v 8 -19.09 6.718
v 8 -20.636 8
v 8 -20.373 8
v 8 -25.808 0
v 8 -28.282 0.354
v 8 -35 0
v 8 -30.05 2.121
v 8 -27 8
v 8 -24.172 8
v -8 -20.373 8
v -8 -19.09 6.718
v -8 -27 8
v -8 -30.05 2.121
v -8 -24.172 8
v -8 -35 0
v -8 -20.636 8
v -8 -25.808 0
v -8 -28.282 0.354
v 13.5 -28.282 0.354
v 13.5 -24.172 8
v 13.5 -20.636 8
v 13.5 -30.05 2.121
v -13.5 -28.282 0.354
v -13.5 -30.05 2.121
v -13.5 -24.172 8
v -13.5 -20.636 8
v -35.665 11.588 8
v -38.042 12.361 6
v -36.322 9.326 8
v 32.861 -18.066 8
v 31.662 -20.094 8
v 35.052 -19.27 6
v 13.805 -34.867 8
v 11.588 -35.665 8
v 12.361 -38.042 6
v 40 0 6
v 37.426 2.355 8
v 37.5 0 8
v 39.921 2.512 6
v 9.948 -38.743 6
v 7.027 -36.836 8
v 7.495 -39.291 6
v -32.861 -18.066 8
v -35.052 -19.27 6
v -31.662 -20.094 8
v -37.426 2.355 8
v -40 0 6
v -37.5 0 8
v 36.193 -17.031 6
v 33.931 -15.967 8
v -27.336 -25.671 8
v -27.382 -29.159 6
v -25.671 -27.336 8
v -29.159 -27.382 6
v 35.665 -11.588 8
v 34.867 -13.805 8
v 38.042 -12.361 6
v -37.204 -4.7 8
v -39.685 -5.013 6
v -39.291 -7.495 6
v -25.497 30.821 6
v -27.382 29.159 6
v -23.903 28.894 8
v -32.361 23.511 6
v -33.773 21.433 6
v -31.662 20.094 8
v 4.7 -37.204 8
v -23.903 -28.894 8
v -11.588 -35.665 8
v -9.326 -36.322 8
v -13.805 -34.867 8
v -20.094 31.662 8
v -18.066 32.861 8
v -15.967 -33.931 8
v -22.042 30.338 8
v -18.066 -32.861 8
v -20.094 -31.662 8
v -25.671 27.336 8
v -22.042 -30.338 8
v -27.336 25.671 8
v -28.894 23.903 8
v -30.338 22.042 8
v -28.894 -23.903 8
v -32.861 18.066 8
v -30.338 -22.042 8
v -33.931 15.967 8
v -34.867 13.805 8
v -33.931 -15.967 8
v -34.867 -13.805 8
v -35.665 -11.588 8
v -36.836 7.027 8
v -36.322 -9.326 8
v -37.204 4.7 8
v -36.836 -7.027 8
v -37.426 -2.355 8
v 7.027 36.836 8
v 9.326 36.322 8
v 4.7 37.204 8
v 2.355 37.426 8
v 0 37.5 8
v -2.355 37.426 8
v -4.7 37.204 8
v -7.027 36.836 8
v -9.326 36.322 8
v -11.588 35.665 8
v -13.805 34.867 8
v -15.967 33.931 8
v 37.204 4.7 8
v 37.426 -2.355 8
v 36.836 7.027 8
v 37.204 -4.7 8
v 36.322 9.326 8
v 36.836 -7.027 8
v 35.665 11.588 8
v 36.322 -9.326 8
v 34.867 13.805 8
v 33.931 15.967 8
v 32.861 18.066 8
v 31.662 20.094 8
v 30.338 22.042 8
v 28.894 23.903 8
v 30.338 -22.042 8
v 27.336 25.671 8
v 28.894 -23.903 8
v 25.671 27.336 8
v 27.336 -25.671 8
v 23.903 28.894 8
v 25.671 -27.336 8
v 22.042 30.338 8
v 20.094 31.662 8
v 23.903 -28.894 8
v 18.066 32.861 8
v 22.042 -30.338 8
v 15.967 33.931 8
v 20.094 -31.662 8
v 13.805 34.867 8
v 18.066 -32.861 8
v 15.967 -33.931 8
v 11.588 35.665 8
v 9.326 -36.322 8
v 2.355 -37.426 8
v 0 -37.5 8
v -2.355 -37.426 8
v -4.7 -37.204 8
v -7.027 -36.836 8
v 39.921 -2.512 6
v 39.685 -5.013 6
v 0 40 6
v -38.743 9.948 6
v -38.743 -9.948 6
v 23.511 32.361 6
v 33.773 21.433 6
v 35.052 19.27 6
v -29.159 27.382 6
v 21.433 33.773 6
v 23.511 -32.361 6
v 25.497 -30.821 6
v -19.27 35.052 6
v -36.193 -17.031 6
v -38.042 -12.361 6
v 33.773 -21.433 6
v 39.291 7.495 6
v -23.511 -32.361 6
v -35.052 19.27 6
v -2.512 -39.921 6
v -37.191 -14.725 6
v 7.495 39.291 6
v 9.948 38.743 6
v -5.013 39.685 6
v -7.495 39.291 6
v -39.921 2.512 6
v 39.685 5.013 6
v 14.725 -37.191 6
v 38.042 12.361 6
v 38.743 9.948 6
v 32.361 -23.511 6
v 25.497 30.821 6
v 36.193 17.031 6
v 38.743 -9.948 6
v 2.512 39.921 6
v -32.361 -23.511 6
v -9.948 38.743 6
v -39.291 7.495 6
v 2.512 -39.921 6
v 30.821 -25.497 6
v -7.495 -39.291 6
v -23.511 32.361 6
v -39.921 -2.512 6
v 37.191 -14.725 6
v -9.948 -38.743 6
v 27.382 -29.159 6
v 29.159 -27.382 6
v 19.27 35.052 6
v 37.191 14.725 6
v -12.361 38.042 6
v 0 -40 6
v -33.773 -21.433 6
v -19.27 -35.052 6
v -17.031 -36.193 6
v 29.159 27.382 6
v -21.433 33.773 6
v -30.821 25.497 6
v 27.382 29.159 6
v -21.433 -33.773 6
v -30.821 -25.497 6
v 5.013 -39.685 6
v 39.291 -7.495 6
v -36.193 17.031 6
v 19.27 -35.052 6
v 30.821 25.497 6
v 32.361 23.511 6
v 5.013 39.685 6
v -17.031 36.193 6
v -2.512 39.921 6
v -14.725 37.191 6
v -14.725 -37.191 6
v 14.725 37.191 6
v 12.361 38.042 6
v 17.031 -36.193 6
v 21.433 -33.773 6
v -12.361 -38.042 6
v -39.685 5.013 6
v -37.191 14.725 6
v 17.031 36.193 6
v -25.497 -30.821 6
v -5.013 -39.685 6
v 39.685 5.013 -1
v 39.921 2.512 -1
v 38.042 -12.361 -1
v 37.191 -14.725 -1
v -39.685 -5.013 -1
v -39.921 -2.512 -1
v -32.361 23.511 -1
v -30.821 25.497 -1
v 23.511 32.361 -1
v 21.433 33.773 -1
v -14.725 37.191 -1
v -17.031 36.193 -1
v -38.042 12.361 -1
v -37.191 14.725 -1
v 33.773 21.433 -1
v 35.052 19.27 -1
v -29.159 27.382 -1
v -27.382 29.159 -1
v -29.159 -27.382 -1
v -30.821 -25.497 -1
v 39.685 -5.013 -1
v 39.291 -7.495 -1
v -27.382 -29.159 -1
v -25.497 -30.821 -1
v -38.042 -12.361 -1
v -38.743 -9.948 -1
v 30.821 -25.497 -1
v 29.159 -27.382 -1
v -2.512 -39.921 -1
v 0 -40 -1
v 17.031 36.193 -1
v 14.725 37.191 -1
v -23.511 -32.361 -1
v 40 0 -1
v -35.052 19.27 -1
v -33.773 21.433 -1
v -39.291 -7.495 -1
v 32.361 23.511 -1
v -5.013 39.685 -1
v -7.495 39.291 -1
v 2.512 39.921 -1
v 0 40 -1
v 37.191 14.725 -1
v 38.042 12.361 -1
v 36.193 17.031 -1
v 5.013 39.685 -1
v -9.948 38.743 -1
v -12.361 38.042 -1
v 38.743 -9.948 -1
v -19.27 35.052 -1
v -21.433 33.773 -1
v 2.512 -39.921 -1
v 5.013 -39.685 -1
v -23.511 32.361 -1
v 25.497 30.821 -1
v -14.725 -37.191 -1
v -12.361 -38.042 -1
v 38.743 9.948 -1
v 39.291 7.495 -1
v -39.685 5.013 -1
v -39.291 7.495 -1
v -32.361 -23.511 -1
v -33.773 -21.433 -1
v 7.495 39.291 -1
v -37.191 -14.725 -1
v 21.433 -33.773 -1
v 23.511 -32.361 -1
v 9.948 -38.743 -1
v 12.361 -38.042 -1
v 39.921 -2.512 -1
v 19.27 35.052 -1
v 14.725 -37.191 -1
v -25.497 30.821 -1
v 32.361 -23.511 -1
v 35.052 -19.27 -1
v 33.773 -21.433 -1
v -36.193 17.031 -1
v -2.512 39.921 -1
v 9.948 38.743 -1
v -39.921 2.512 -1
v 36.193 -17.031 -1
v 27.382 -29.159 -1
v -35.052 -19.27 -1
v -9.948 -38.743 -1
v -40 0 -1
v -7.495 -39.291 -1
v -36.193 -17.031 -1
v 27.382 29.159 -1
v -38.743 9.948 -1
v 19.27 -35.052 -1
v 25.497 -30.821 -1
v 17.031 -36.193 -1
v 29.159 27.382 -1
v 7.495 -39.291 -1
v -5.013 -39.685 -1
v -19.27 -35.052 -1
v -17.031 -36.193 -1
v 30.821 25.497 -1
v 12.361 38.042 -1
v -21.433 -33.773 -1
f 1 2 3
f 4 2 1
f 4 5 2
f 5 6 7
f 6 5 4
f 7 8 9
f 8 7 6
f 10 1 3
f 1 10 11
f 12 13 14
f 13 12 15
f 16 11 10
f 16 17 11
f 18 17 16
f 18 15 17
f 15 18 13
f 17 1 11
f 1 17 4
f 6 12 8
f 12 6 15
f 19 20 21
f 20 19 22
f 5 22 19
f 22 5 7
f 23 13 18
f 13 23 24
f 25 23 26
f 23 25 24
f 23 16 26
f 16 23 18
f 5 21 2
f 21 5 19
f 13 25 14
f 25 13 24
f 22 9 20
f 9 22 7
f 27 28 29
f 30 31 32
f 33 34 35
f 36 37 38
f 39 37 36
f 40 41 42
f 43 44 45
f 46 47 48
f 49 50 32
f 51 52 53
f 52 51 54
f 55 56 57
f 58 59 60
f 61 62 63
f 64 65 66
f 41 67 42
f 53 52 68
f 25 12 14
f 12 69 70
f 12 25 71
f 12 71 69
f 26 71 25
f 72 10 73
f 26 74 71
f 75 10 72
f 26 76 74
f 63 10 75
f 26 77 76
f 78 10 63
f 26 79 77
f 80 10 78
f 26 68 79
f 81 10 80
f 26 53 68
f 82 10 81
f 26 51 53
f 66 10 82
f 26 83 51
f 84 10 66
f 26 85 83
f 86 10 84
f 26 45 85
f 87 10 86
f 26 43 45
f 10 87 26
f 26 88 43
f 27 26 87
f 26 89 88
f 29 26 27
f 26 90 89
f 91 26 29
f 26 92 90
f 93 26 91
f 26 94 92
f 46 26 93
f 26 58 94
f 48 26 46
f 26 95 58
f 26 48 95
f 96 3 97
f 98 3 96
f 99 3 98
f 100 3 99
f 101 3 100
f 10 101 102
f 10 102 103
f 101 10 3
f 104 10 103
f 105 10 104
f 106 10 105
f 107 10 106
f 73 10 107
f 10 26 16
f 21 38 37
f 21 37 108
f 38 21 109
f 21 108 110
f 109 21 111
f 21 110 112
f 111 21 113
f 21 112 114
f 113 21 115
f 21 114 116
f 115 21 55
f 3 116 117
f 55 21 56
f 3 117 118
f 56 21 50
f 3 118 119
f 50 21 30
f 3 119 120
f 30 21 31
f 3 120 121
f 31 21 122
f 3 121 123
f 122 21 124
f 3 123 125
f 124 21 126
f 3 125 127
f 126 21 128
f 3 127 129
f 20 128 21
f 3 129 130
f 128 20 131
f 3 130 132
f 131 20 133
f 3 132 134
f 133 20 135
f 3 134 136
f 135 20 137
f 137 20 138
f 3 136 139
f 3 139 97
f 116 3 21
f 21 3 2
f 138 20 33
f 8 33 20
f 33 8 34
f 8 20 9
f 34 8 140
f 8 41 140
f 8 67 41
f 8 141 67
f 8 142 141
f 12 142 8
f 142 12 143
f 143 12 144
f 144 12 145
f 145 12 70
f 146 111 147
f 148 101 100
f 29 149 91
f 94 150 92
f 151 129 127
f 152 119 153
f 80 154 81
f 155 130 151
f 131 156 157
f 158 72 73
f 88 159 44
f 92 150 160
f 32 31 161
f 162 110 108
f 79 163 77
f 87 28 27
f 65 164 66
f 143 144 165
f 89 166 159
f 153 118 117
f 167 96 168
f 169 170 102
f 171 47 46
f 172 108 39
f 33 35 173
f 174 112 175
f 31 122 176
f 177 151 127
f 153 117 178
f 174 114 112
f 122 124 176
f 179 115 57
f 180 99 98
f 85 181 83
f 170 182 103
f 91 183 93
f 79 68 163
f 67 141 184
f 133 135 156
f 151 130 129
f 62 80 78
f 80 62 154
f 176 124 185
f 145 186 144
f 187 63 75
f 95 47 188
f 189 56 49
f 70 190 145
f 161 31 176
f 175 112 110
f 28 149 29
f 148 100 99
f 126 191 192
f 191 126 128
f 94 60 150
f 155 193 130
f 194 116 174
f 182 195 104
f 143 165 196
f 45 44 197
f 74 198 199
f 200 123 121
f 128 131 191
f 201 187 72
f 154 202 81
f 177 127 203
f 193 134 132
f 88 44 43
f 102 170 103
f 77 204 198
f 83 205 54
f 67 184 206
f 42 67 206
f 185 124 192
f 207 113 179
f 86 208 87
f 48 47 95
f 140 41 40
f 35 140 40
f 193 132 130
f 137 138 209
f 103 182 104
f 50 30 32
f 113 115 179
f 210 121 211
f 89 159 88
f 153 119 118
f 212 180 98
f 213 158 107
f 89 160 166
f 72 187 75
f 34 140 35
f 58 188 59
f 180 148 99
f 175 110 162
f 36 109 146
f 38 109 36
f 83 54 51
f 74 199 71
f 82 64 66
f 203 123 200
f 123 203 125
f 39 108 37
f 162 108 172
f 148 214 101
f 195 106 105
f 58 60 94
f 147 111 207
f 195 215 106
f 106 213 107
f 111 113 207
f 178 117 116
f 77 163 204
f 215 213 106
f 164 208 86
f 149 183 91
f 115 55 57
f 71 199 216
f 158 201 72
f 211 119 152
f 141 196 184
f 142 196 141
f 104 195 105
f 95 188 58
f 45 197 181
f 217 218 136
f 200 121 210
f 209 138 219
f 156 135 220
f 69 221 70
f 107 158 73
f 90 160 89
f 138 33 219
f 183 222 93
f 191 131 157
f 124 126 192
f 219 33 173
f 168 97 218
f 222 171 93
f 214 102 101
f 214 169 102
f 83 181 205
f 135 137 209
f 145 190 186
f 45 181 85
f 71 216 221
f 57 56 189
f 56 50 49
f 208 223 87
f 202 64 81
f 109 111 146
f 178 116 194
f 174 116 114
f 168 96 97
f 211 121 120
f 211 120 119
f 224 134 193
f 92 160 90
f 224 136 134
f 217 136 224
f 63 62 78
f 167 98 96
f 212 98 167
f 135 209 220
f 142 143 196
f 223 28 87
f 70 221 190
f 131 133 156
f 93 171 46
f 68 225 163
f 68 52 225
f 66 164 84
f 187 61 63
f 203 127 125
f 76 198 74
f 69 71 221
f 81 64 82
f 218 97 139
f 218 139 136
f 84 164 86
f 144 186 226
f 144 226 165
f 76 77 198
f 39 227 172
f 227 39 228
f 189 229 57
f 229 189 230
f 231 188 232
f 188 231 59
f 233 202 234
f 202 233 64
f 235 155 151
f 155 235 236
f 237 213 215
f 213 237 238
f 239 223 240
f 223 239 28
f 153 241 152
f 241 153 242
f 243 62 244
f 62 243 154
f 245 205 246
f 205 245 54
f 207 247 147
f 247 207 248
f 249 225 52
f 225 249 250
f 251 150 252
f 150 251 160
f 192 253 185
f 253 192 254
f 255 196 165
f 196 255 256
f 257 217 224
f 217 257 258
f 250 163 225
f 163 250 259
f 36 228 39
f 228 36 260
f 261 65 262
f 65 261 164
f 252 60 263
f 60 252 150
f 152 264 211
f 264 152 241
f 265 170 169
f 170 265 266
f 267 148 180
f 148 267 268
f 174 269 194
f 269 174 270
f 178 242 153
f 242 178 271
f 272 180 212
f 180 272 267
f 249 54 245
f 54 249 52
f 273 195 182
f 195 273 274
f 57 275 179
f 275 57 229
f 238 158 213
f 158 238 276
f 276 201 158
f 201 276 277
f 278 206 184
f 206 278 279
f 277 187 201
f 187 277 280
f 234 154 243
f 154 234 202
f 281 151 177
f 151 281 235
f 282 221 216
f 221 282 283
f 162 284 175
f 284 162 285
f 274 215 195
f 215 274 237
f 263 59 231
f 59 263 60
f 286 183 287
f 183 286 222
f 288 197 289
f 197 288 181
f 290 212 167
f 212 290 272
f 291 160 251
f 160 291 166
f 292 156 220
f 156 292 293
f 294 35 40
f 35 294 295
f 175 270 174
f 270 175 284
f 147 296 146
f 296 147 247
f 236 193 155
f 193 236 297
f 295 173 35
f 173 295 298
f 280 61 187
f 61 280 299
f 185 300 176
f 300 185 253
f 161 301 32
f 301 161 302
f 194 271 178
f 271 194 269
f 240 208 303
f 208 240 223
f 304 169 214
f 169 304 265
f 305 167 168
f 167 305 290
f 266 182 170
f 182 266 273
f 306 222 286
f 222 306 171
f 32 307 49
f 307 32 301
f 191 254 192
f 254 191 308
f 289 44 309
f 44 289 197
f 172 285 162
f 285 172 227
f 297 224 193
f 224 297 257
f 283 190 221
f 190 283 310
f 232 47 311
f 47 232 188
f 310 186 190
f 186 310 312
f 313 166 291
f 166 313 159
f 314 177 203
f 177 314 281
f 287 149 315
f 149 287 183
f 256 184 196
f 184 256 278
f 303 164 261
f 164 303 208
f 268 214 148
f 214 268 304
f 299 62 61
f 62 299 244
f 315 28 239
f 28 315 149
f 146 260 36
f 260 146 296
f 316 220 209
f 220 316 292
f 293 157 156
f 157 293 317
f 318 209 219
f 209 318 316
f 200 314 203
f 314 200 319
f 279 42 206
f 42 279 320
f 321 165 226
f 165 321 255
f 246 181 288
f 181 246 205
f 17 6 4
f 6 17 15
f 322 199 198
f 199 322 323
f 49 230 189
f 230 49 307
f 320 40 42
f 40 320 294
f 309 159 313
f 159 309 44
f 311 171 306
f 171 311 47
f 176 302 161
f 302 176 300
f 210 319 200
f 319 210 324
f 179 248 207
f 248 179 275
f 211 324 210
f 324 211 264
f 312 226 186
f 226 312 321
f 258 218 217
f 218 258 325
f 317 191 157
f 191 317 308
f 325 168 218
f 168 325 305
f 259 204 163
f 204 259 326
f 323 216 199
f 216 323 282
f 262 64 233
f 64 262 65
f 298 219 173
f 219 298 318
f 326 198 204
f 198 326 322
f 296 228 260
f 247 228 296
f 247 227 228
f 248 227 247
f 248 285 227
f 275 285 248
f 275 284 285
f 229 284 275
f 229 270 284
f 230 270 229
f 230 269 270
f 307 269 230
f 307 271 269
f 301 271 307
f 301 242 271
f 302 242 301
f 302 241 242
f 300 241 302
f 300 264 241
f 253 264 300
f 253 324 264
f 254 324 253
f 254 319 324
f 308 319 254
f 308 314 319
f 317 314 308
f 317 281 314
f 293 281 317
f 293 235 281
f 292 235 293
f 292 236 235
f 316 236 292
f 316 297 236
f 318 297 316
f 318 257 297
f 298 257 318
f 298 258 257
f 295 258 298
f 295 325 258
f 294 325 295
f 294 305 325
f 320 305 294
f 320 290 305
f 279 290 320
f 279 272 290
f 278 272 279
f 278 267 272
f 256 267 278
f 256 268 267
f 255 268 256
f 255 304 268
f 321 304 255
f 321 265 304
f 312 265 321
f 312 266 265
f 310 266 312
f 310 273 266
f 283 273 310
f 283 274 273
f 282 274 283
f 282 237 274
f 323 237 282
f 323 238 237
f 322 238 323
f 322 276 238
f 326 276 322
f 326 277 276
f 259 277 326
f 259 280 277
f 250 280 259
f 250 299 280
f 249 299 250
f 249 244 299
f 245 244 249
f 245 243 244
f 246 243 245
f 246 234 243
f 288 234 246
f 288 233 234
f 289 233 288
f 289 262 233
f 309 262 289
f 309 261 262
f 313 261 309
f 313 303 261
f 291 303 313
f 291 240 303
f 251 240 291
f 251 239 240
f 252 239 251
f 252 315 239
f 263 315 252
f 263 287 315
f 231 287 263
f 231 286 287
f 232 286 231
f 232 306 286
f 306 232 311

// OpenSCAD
//
// ktRACK91
//
//

gap1 = 0.001;
gap2 = 0.002;
th = 2;



base();


module base()
{
difference()
{

    union()
    {
        translate([0, 0, 8-2]) cylinder(h=2, r1=80/2, r2=75/2, $fn=100);
        translate([0, 0, 0]) cylinder(h=8-2, r=80/2, $fn=100);
    }
    translate([0, -35, 0])rotate([-45, 0, 0]) unit();
}
difference()
{

    union()
    {
        translate([0, 0, -1]) cylinder(h=1, r=80/2, $fn=100);
    }
}
}

module unit()
{
difference()
{
   union()
   {
       translate([-16/2, 0, 0]) cube([16, 6.5, 16]);
       translate([-27/2, 6.5/2-2.5/2, 5]) cube([27, 2.5, 16-5]);
   }
}
}
